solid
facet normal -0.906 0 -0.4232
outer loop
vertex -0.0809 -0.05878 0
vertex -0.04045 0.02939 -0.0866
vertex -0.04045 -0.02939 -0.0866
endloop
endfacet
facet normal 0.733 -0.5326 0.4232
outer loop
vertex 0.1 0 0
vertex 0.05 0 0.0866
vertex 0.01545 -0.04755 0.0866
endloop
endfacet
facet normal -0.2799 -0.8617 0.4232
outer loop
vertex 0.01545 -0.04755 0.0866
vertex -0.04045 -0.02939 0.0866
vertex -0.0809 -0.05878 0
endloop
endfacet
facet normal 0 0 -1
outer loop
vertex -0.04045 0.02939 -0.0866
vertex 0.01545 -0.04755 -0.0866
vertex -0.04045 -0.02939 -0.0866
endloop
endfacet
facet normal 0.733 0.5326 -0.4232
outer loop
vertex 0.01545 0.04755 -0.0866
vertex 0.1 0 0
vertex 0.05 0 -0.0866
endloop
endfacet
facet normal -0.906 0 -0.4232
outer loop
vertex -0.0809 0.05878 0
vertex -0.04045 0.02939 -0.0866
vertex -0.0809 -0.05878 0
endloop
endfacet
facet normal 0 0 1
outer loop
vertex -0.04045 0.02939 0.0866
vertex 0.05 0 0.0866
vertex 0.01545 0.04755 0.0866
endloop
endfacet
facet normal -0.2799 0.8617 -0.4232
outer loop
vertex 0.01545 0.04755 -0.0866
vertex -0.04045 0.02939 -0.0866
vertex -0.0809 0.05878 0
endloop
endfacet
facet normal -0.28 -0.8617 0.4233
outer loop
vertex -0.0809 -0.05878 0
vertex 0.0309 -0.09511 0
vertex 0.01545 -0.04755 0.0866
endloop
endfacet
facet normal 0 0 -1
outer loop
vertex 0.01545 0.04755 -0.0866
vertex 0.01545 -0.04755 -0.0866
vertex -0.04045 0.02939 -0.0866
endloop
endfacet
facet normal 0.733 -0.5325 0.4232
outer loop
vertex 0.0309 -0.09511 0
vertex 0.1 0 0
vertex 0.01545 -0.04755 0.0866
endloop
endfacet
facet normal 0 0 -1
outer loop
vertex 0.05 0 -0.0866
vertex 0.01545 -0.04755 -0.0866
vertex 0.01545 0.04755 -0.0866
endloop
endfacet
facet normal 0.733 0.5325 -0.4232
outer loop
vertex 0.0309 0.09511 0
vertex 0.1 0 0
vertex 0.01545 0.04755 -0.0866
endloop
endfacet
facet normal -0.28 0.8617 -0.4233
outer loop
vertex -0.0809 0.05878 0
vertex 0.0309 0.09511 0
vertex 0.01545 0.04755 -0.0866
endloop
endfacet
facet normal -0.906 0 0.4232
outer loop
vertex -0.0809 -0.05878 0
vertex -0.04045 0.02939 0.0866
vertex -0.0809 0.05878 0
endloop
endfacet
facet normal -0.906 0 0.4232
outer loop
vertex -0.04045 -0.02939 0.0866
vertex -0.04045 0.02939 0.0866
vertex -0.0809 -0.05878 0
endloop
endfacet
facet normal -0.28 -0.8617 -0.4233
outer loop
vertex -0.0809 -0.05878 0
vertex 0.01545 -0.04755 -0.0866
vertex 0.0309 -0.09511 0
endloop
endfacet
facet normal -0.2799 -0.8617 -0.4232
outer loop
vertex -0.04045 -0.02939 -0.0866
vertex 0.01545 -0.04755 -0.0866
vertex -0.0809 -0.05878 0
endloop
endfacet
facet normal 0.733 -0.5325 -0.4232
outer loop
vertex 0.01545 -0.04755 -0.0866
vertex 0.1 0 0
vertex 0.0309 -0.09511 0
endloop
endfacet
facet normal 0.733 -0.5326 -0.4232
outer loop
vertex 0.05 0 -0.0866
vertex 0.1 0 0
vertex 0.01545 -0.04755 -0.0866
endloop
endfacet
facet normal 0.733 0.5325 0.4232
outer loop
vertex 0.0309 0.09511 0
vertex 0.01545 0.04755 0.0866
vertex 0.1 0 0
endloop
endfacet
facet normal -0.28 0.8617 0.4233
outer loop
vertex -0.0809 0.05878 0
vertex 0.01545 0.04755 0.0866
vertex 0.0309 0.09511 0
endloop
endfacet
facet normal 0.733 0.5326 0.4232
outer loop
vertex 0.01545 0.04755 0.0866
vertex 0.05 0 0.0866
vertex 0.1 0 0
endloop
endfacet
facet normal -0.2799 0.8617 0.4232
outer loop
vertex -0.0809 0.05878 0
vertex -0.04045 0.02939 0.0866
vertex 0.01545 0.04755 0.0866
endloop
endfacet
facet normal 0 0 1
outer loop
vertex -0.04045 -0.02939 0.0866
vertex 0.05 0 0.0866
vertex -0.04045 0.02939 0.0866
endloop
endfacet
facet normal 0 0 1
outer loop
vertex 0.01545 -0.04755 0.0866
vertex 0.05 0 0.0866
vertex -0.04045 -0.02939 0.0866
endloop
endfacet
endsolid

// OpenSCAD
module union(size, height, segments) {
  hull() {
    for (i = [0:segments]) {
      angle = i * 360 / segments;
      x = size[0] * cos(angle);
      y = size[1] * sin(angle);
      z = height * cos(angle);
      translate([x, y, z]) sphere(r=0.1);
    }
  }
}

union(size = 10, height = 1, segments = 32);
